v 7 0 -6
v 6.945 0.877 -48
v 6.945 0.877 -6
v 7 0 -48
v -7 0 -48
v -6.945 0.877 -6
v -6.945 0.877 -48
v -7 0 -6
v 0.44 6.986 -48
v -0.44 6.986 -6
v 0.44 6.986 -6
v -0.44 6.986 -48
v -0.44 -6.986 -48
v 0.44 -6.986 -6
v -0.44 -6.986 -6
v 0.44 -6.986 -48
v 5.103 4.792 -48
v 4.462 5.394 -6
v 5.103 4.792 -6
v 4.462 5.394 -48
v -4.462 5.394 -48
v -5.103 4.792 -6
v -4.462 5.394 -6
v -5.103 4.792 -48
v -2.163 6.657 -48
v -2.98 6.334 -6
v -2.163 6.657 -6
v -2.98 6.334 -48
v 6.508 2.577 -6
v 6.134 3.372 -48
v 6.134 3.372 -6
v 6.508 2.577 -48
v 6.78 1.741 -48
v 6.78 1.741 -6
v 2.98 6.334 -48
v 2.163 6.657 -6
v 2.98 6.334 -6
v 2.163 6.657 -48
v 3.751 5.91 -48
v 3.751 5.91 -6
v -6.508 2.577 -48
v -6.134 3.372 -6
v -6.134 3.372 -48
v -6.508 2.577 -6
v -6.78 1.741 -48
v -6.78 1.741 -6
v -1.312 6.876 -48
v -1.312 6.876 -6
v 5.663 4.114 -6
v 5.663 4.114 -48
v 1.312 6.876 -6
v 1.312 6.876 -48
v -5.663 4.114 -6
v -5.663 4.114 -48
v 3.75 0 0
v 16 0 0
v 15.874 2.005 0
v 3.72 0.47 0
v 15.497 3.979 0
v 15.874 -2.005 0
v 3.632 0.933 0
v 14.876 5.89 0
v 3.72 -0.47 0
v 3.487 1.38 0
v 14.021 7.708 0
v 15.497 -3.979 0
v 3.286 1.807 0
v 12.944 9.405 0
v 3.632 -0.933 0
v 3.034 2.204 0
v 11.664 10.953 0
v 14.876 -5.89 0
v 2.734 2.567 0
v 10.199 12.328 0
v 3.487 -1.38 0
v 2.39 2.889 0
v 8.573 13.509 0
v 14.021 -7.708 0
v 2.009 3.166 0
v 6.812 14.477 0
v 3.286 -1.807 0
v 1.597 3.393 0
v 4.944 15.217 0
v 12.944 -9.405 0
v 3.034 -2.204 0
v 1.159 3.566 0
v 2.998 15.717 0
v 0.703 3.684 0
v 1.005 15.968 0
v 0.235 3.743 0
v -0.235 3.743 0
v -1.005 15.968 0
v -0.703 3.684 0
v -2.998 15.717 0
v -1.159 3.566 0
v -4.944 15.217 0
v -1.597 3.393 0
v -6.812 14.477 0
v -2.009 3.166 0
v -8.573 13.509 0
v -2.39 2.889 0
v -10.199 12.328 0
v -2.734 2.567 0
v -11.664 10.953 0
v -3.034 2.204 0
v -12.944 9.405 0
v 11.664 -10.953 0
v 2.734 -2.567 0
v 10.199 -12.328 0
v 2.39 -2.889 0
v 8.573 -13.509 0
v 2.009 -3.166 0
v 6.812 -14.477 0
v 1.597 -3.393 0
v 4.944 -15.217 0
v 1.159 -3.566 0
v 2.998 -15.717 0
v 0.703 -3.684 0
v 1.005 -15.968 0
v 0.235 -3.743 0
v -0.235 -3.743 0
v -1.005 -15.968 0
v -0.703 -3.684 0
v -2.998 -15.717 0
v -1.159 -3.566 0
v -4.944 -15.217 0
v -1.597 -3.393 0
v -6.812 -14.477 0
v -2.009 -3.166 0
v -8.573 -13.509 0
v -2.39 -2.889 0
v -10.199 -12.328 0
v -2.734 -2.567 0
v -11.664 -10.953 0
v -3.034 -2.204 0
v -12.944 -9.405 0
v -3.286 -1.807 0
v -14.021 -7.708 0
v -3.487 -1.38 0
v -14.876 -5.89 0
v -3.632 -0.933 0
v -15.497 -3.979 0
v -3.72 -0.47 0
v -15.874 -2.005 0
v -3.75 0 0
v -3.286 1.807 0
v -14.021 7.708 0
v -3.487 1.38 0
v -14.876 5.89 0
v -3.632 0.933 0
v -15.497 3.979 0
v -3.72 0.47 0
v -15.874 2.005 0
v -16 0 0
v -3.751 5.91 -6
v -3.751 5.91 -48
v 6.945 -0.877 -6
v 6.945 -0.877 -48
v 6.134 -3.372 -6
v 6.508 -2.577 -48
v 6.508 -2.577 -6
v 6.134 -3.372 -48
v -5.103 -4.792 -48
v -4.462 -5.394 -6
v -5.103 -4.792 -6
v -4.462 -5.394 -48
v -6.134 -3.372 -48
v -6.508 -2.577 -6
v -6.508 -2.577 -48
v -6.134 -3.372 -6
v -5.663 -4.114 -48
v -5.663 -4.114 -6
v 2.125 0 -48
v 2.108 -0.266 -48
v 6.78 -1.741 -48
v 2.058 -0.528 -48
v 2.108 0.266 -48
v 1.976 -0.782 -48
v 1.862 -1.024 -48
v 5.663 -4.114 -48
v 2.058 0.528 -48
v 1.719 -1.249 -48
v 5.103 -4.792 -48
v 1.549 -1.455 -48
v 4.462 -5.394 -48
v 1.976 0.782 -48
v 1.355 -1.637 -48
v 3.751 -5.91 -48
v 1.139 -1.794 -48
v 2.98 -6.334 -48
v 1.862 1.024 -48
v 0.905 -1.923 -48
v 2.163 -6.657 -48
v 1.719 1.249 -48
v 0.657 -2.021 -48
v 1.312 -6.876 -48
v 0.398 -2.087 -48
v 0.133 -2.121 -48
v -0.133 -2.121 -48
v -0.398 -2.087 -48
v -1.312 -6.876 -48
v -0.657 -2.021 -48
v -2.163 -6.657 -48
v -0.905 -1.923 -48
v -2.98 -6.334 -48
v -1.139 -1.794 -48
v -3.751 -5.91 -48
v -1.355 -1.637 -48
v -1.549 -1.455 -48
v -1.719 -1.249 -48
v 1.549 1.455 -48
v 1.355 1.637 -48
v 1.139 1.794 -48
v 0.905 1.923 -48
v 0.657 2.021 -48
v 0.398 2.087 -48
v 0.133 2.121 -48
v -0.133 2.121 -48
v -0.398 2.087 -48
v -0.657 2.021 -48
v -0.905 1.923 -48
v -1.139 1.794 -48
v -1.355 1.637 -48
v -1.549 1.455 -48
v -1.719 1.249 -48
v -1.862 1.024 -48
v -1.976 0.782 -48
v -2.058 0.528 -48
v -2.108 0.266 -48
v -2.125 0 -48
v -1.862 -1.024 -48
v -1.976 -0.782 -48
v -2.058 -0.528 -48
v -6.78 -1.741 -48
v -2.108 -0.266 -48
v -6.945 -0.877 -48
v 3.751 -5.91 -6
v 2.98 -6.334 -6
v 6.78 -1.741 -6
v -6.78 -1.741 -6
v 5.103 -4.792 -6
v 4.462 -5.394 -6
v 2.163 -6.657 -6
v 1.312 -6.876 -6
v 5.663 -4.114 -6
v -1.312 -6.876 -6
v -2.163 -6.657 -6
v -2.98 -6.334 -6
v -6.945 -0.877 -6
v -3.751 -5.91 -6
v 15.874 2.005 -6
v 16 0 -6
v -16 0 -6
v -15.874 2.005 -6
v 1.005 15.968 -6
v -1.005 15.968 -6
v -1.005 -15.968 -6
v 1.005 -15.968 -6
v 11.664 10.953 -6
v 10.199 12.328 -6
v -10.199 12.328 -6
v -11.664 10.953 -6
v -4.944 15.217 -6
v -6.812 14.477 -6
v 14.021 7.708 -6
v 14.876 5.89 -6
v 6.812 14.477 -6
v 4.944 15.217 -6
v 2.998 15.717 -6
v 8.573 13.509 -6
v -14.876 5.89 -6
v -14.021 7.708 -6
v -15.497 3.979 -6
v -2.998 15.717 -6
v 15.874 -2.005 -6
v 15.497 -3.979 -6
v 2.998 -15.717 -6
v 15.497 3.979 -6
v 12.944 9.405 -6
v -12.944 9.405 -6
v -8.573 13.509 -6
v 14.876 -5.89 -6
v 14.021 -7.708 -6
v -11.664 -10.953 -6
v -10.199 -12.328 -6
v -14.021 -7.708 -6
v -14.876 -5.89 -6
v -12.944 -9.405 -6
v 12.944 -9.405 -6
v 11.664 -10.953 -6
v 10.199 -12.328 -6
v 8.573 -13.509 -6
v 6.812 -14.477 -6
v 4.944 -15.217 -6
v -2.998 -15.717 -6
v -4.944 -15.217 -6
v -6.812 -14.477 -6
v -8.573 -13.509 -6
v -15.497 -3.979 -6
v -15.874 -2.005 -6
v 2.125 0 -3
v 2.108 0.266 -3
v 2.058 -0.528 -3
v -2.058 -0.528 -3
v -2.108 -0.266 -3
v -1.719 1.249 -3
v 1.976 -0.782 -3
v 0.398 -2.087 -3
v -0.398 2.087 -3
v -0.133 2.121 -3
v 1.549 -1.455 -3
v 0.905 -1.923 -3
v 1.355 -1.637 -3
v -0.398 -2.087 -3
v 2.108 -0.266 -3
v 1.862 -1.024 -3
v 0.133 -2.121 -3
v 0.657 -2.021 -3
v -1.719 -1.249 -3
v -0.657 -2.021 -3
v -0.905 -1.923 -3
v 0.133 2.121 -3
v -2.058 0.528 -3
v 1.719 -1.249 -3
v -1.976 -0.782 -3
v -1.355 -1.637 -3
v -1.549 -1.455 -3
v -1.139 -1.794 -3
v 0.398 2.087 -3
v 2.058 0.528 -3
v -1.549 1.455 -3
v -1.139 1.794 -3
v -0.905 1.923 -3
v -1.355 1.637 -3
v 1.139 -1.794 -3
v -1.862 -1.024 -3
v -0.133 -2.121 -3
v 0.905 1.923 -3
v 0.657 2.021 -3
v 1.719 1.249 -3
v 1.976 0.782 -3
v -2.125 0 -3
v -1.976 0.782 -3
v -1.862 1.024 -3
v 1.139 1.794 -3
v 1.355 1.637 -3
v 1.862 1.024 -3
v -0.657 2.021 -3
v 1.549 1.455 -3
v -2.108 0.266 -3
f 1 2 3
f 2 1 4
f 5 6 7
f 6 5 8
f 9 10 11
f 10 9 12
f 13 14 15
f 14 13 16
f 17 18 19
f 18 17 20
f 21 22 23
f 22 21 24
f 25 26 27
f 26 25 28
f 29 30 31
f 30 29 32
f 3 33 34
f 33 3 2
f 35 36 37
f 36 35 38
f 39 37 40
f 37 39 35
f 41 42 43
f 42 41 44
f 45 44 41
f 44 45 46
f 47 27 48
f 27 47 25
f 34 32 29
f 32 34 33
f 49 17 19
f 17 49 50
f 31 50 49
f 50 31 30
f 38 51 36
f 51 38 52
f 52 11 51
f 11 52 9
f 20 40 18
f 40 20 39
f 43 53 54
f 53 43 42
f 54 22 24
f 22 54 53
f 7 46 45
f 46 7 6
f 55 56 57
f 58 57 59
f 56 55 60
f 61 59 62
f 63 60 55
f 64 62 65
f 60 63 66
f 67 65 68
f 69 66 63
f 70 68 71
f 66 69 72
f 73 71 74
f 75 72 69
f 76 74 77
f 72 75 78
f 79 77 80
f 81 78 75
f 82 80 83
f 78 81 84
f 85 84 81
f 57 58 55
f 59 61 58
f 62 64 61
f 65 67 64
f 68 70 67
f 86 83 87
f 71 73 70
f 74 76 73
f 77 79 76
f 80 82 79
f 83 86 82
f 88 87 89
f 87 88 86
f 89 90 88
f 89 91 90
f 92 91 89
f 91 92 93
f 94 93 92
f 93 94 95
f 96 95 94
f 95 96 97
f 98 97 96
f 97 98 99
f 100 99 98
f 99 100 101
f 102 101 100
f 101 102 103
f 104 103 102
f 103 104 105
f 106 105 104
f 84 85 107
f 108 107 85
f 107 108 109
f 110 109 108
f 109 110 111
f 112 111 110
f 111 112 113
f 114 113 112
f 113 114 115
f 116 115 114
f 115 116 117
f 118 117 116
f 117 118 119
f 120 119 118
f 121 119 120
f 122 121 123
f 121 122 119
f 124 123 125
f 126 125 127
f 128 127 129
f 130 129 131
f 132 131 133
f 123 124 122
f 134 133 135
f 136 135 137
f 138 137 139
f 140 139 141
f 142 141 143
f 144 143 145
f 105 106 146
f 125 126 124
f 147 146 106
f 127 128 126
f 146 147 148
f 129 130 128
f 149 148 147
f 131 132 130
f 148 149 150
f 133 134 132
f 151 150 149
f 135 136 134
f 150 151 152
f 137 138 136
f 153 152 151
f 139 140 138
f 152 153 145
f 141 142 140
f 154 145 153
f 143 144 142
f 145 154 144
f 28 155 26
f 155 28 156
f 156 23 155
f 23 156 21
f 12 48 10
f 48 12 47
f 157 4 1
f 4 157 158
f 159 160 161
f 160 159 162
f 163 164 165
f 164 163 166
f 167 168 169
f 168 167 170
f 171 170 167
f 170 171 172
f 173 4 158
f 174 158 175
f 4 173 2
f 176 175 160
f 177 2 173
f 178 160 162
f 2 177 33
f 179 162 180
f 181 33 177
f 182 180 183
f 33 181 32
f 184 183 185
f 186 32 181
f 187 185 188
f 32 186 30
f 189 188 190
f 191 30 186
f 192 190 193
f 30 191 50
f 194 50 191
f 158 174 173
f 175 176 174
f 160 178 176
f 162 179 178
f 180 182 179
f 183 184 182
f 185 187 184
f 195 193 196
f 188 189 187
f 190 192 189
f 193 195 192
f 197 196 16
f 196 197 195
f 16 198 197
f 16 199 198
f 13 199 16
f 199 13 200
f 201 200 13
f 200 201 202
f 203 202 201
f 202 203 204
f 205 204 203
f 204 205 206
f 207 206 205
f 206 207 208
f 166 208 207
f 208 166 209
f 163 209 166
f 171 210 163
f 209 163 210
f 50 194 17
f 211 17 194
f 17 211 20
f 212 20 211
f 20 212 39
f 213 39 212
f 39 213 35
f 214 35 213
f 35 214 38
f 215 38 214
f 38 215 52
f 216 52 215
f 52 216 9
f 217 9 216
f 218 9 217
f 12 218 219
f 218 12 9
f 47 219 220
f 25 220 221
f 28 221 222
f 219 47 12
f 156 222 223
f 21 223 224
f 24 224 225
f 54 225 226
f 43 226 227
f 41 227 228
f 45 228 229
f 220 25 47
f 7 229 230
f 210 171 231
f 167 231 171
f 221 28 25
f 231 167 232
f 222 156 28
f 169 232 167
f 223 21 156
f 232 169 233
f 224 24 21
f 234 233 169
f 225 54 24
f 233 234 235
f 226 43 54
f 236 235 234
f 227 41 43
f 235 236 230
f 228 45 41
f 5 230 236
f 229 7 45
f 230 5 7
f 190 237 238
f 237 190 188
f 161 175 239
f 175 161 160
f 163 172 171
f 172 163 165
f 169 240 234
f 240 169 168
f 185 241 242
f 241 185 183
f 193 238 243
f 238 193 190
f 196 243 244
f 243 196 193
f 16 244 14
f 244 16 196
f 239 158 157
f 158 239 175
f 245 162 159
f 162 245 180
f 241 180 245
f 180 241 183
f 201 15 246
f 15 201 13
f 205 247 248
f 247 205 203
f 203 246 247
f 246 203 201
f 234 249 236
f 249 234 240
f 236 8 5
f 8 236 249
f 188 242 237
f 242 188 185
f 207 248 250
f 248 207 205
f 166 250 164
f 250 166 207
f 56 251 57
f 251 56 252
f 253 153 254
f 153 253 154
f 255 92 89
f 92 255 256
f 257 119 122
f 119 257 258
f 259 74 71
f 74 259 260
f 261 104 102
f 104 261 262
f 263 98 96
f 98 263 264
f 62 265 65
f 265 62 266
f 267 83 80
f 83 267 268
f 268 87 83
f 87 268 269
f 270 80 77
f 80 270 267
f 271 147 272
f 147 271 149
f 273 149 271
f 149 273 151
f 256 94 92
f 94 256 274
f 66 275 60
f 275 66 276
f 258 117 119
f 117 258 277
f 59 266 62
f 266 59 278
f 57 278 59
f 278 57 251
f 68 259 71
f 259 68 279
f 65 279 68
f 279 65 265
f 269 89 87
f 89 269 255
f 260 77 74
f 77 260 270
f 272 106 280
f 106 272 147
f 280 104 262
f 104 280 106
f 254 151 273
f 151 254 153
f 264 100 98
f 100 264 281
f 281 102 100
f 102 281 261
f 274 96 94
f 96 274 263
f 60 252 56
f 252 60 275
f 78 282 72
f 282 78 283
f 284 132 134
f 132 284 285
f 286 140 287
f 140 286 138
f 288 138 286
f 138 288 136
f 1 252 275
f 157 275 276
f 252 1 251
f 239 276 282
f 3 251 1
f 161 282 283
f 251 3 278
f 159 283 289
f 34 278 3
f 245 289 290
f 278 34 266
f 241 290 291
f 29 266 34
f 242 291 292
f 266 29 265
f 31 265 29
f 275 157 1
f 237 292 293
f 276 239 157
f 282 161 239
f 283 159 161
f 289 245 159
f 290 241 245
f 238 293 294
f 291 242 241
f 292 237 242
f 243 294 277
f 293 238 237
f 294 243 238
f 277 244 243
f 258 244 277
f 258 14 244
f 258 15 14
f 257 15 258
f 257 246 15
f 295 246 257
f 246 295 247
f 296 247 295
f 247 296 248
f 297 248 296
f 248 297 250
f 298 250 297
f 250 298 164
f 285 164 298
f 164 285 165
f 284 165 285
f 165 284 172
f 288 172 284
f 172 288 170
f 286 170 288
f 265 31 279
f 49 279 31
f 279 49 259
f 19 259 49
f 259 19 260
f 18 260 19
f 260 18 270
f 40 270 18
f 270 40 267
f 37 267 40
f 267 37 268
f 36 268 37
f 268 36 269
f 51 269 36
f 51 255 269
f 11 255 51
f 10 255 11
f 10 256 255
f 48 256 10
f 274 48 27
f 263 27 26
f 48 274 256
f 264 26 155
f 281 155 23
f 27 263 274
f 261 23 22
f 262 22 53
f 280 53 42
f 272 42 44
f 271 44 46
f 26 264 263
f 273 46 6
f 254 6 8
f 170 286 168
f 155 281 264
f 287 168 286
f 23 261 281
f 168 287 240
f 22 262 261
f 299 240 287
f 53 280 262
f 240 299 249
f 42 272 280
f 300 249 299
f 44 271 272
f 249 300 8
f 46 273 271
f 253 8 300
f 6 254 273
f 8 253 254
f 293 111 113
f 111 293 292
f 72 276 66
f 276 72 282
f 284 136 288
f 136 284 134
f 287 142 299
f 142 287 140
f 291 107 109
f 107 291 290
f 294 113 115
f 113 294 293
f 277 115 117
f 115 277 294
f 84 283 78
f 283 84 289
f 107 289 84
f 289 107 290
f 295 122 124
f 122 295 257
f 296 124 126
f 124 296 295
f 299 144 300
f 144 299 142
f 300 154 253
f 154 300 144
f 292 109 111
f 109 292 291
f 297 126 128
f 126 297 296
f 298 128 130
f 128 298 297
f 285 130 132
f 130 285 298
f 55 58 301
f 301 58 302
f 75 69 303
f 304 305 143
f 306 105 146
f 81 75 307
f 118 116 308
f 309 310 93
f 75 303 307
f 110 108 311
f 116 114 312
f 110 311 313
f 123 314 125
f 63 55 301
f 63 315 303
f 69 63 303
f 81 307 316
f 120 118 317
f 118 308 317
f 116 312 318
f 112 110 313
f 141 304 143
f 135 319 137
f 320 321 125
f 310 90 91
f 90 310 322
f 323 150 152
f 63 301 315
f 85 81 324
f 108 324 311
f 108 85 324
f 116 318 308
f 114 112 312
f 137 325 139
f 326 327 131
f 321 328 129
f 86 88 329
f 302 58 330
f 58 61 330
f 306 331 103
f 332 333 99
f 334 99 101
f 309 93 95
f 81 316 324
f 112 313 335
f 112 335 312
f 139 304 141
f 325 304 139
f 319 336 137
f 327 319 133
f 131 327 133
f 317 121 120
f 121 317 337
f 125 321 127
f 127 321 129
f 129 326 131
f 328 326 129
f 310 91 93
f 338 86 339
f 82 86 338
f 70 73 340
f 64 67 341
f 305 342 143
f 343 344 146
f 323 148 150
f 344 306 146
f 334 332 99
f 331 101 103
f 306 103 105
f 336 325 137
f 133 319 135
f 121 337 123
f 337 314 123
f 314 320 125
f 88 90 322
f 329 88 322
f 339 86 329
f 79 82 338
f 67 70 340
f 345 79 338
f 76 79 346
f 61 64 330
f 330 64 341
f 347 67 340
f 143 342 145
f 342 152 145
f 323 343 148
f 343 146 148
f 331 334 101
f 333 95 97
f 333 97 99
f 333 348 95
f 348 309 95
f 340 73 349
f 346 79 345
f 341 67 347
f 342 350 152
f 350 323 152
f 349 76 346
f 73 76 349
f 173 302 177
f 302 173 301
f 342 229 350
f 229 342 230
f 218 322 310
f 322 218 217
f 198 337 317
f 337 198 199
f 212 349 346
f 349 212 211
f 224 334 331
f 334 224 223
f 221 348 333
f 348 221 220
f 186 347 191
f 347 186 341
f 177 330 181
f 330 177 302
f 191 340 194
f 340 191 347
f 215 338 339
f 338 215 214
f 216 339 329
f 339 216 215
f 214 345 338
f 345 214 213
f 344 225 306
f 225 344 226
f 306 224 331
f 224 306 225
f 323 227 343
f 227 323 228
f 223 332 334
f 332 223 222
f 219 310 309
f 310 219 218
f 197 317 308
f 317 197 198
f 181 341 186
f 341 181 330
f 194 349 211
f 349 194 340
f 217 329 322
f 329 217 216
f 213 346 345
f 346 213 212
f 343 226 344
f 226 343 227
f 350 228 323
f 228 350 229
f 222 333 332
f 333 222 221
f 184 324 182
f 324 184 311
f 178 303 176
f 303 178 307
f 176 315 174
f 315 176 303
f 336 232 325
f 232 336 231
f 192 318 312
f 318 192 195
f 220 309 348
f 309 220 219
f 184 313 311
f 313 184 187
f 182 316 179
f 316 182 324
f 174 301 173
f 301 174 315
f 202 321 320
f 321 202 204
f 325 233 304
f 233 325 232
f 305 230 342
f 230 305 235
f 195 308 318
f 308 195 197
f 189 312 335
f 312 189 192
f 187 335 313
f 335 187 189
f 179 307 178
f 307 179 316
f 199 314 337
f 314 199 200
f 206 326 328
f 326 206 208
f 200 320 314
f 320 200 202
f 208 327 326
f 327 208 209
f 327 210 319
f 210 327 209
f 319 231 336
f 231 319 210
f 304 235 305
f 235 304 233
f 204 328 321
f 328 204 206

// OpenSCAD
$fn = 50;


difference() {
	union() {
		translate(v = [0, 0, -48.0000000000]) {
			cylinder(h = 48, r = 7.0000000000);
		}
		translate(v = [0, 0, -6.0000000000]) {
			cylinder(h = 6, r = 16.0000000000);
		}
	}
	union() {
		translate(v = [0, 0, 0]) {
			rotate(a = [0, 0, 0]) {
				difference() {
					union() {
						#translate(v = [0, 0, -48.0000000000]) {
							cylinder(h = 48, r = 2.0000000000);
						}
						#translate(v = [0, 0, -3]) {
							cylinder(h = 3, r1 = 2.1250000000, r2 = 3.7500000000);
						}
						#translate(v = [0, 0, -48.0000000000]) {
							cylinder(h = 48, r = 2.1250000000);
						}
						#translate(v = [0, 0, -48.0000000000]) {
							cylinder(h = 48, r = 2.0000000000);
						}
					}
					union();
				}
			}
		}
	}
}
